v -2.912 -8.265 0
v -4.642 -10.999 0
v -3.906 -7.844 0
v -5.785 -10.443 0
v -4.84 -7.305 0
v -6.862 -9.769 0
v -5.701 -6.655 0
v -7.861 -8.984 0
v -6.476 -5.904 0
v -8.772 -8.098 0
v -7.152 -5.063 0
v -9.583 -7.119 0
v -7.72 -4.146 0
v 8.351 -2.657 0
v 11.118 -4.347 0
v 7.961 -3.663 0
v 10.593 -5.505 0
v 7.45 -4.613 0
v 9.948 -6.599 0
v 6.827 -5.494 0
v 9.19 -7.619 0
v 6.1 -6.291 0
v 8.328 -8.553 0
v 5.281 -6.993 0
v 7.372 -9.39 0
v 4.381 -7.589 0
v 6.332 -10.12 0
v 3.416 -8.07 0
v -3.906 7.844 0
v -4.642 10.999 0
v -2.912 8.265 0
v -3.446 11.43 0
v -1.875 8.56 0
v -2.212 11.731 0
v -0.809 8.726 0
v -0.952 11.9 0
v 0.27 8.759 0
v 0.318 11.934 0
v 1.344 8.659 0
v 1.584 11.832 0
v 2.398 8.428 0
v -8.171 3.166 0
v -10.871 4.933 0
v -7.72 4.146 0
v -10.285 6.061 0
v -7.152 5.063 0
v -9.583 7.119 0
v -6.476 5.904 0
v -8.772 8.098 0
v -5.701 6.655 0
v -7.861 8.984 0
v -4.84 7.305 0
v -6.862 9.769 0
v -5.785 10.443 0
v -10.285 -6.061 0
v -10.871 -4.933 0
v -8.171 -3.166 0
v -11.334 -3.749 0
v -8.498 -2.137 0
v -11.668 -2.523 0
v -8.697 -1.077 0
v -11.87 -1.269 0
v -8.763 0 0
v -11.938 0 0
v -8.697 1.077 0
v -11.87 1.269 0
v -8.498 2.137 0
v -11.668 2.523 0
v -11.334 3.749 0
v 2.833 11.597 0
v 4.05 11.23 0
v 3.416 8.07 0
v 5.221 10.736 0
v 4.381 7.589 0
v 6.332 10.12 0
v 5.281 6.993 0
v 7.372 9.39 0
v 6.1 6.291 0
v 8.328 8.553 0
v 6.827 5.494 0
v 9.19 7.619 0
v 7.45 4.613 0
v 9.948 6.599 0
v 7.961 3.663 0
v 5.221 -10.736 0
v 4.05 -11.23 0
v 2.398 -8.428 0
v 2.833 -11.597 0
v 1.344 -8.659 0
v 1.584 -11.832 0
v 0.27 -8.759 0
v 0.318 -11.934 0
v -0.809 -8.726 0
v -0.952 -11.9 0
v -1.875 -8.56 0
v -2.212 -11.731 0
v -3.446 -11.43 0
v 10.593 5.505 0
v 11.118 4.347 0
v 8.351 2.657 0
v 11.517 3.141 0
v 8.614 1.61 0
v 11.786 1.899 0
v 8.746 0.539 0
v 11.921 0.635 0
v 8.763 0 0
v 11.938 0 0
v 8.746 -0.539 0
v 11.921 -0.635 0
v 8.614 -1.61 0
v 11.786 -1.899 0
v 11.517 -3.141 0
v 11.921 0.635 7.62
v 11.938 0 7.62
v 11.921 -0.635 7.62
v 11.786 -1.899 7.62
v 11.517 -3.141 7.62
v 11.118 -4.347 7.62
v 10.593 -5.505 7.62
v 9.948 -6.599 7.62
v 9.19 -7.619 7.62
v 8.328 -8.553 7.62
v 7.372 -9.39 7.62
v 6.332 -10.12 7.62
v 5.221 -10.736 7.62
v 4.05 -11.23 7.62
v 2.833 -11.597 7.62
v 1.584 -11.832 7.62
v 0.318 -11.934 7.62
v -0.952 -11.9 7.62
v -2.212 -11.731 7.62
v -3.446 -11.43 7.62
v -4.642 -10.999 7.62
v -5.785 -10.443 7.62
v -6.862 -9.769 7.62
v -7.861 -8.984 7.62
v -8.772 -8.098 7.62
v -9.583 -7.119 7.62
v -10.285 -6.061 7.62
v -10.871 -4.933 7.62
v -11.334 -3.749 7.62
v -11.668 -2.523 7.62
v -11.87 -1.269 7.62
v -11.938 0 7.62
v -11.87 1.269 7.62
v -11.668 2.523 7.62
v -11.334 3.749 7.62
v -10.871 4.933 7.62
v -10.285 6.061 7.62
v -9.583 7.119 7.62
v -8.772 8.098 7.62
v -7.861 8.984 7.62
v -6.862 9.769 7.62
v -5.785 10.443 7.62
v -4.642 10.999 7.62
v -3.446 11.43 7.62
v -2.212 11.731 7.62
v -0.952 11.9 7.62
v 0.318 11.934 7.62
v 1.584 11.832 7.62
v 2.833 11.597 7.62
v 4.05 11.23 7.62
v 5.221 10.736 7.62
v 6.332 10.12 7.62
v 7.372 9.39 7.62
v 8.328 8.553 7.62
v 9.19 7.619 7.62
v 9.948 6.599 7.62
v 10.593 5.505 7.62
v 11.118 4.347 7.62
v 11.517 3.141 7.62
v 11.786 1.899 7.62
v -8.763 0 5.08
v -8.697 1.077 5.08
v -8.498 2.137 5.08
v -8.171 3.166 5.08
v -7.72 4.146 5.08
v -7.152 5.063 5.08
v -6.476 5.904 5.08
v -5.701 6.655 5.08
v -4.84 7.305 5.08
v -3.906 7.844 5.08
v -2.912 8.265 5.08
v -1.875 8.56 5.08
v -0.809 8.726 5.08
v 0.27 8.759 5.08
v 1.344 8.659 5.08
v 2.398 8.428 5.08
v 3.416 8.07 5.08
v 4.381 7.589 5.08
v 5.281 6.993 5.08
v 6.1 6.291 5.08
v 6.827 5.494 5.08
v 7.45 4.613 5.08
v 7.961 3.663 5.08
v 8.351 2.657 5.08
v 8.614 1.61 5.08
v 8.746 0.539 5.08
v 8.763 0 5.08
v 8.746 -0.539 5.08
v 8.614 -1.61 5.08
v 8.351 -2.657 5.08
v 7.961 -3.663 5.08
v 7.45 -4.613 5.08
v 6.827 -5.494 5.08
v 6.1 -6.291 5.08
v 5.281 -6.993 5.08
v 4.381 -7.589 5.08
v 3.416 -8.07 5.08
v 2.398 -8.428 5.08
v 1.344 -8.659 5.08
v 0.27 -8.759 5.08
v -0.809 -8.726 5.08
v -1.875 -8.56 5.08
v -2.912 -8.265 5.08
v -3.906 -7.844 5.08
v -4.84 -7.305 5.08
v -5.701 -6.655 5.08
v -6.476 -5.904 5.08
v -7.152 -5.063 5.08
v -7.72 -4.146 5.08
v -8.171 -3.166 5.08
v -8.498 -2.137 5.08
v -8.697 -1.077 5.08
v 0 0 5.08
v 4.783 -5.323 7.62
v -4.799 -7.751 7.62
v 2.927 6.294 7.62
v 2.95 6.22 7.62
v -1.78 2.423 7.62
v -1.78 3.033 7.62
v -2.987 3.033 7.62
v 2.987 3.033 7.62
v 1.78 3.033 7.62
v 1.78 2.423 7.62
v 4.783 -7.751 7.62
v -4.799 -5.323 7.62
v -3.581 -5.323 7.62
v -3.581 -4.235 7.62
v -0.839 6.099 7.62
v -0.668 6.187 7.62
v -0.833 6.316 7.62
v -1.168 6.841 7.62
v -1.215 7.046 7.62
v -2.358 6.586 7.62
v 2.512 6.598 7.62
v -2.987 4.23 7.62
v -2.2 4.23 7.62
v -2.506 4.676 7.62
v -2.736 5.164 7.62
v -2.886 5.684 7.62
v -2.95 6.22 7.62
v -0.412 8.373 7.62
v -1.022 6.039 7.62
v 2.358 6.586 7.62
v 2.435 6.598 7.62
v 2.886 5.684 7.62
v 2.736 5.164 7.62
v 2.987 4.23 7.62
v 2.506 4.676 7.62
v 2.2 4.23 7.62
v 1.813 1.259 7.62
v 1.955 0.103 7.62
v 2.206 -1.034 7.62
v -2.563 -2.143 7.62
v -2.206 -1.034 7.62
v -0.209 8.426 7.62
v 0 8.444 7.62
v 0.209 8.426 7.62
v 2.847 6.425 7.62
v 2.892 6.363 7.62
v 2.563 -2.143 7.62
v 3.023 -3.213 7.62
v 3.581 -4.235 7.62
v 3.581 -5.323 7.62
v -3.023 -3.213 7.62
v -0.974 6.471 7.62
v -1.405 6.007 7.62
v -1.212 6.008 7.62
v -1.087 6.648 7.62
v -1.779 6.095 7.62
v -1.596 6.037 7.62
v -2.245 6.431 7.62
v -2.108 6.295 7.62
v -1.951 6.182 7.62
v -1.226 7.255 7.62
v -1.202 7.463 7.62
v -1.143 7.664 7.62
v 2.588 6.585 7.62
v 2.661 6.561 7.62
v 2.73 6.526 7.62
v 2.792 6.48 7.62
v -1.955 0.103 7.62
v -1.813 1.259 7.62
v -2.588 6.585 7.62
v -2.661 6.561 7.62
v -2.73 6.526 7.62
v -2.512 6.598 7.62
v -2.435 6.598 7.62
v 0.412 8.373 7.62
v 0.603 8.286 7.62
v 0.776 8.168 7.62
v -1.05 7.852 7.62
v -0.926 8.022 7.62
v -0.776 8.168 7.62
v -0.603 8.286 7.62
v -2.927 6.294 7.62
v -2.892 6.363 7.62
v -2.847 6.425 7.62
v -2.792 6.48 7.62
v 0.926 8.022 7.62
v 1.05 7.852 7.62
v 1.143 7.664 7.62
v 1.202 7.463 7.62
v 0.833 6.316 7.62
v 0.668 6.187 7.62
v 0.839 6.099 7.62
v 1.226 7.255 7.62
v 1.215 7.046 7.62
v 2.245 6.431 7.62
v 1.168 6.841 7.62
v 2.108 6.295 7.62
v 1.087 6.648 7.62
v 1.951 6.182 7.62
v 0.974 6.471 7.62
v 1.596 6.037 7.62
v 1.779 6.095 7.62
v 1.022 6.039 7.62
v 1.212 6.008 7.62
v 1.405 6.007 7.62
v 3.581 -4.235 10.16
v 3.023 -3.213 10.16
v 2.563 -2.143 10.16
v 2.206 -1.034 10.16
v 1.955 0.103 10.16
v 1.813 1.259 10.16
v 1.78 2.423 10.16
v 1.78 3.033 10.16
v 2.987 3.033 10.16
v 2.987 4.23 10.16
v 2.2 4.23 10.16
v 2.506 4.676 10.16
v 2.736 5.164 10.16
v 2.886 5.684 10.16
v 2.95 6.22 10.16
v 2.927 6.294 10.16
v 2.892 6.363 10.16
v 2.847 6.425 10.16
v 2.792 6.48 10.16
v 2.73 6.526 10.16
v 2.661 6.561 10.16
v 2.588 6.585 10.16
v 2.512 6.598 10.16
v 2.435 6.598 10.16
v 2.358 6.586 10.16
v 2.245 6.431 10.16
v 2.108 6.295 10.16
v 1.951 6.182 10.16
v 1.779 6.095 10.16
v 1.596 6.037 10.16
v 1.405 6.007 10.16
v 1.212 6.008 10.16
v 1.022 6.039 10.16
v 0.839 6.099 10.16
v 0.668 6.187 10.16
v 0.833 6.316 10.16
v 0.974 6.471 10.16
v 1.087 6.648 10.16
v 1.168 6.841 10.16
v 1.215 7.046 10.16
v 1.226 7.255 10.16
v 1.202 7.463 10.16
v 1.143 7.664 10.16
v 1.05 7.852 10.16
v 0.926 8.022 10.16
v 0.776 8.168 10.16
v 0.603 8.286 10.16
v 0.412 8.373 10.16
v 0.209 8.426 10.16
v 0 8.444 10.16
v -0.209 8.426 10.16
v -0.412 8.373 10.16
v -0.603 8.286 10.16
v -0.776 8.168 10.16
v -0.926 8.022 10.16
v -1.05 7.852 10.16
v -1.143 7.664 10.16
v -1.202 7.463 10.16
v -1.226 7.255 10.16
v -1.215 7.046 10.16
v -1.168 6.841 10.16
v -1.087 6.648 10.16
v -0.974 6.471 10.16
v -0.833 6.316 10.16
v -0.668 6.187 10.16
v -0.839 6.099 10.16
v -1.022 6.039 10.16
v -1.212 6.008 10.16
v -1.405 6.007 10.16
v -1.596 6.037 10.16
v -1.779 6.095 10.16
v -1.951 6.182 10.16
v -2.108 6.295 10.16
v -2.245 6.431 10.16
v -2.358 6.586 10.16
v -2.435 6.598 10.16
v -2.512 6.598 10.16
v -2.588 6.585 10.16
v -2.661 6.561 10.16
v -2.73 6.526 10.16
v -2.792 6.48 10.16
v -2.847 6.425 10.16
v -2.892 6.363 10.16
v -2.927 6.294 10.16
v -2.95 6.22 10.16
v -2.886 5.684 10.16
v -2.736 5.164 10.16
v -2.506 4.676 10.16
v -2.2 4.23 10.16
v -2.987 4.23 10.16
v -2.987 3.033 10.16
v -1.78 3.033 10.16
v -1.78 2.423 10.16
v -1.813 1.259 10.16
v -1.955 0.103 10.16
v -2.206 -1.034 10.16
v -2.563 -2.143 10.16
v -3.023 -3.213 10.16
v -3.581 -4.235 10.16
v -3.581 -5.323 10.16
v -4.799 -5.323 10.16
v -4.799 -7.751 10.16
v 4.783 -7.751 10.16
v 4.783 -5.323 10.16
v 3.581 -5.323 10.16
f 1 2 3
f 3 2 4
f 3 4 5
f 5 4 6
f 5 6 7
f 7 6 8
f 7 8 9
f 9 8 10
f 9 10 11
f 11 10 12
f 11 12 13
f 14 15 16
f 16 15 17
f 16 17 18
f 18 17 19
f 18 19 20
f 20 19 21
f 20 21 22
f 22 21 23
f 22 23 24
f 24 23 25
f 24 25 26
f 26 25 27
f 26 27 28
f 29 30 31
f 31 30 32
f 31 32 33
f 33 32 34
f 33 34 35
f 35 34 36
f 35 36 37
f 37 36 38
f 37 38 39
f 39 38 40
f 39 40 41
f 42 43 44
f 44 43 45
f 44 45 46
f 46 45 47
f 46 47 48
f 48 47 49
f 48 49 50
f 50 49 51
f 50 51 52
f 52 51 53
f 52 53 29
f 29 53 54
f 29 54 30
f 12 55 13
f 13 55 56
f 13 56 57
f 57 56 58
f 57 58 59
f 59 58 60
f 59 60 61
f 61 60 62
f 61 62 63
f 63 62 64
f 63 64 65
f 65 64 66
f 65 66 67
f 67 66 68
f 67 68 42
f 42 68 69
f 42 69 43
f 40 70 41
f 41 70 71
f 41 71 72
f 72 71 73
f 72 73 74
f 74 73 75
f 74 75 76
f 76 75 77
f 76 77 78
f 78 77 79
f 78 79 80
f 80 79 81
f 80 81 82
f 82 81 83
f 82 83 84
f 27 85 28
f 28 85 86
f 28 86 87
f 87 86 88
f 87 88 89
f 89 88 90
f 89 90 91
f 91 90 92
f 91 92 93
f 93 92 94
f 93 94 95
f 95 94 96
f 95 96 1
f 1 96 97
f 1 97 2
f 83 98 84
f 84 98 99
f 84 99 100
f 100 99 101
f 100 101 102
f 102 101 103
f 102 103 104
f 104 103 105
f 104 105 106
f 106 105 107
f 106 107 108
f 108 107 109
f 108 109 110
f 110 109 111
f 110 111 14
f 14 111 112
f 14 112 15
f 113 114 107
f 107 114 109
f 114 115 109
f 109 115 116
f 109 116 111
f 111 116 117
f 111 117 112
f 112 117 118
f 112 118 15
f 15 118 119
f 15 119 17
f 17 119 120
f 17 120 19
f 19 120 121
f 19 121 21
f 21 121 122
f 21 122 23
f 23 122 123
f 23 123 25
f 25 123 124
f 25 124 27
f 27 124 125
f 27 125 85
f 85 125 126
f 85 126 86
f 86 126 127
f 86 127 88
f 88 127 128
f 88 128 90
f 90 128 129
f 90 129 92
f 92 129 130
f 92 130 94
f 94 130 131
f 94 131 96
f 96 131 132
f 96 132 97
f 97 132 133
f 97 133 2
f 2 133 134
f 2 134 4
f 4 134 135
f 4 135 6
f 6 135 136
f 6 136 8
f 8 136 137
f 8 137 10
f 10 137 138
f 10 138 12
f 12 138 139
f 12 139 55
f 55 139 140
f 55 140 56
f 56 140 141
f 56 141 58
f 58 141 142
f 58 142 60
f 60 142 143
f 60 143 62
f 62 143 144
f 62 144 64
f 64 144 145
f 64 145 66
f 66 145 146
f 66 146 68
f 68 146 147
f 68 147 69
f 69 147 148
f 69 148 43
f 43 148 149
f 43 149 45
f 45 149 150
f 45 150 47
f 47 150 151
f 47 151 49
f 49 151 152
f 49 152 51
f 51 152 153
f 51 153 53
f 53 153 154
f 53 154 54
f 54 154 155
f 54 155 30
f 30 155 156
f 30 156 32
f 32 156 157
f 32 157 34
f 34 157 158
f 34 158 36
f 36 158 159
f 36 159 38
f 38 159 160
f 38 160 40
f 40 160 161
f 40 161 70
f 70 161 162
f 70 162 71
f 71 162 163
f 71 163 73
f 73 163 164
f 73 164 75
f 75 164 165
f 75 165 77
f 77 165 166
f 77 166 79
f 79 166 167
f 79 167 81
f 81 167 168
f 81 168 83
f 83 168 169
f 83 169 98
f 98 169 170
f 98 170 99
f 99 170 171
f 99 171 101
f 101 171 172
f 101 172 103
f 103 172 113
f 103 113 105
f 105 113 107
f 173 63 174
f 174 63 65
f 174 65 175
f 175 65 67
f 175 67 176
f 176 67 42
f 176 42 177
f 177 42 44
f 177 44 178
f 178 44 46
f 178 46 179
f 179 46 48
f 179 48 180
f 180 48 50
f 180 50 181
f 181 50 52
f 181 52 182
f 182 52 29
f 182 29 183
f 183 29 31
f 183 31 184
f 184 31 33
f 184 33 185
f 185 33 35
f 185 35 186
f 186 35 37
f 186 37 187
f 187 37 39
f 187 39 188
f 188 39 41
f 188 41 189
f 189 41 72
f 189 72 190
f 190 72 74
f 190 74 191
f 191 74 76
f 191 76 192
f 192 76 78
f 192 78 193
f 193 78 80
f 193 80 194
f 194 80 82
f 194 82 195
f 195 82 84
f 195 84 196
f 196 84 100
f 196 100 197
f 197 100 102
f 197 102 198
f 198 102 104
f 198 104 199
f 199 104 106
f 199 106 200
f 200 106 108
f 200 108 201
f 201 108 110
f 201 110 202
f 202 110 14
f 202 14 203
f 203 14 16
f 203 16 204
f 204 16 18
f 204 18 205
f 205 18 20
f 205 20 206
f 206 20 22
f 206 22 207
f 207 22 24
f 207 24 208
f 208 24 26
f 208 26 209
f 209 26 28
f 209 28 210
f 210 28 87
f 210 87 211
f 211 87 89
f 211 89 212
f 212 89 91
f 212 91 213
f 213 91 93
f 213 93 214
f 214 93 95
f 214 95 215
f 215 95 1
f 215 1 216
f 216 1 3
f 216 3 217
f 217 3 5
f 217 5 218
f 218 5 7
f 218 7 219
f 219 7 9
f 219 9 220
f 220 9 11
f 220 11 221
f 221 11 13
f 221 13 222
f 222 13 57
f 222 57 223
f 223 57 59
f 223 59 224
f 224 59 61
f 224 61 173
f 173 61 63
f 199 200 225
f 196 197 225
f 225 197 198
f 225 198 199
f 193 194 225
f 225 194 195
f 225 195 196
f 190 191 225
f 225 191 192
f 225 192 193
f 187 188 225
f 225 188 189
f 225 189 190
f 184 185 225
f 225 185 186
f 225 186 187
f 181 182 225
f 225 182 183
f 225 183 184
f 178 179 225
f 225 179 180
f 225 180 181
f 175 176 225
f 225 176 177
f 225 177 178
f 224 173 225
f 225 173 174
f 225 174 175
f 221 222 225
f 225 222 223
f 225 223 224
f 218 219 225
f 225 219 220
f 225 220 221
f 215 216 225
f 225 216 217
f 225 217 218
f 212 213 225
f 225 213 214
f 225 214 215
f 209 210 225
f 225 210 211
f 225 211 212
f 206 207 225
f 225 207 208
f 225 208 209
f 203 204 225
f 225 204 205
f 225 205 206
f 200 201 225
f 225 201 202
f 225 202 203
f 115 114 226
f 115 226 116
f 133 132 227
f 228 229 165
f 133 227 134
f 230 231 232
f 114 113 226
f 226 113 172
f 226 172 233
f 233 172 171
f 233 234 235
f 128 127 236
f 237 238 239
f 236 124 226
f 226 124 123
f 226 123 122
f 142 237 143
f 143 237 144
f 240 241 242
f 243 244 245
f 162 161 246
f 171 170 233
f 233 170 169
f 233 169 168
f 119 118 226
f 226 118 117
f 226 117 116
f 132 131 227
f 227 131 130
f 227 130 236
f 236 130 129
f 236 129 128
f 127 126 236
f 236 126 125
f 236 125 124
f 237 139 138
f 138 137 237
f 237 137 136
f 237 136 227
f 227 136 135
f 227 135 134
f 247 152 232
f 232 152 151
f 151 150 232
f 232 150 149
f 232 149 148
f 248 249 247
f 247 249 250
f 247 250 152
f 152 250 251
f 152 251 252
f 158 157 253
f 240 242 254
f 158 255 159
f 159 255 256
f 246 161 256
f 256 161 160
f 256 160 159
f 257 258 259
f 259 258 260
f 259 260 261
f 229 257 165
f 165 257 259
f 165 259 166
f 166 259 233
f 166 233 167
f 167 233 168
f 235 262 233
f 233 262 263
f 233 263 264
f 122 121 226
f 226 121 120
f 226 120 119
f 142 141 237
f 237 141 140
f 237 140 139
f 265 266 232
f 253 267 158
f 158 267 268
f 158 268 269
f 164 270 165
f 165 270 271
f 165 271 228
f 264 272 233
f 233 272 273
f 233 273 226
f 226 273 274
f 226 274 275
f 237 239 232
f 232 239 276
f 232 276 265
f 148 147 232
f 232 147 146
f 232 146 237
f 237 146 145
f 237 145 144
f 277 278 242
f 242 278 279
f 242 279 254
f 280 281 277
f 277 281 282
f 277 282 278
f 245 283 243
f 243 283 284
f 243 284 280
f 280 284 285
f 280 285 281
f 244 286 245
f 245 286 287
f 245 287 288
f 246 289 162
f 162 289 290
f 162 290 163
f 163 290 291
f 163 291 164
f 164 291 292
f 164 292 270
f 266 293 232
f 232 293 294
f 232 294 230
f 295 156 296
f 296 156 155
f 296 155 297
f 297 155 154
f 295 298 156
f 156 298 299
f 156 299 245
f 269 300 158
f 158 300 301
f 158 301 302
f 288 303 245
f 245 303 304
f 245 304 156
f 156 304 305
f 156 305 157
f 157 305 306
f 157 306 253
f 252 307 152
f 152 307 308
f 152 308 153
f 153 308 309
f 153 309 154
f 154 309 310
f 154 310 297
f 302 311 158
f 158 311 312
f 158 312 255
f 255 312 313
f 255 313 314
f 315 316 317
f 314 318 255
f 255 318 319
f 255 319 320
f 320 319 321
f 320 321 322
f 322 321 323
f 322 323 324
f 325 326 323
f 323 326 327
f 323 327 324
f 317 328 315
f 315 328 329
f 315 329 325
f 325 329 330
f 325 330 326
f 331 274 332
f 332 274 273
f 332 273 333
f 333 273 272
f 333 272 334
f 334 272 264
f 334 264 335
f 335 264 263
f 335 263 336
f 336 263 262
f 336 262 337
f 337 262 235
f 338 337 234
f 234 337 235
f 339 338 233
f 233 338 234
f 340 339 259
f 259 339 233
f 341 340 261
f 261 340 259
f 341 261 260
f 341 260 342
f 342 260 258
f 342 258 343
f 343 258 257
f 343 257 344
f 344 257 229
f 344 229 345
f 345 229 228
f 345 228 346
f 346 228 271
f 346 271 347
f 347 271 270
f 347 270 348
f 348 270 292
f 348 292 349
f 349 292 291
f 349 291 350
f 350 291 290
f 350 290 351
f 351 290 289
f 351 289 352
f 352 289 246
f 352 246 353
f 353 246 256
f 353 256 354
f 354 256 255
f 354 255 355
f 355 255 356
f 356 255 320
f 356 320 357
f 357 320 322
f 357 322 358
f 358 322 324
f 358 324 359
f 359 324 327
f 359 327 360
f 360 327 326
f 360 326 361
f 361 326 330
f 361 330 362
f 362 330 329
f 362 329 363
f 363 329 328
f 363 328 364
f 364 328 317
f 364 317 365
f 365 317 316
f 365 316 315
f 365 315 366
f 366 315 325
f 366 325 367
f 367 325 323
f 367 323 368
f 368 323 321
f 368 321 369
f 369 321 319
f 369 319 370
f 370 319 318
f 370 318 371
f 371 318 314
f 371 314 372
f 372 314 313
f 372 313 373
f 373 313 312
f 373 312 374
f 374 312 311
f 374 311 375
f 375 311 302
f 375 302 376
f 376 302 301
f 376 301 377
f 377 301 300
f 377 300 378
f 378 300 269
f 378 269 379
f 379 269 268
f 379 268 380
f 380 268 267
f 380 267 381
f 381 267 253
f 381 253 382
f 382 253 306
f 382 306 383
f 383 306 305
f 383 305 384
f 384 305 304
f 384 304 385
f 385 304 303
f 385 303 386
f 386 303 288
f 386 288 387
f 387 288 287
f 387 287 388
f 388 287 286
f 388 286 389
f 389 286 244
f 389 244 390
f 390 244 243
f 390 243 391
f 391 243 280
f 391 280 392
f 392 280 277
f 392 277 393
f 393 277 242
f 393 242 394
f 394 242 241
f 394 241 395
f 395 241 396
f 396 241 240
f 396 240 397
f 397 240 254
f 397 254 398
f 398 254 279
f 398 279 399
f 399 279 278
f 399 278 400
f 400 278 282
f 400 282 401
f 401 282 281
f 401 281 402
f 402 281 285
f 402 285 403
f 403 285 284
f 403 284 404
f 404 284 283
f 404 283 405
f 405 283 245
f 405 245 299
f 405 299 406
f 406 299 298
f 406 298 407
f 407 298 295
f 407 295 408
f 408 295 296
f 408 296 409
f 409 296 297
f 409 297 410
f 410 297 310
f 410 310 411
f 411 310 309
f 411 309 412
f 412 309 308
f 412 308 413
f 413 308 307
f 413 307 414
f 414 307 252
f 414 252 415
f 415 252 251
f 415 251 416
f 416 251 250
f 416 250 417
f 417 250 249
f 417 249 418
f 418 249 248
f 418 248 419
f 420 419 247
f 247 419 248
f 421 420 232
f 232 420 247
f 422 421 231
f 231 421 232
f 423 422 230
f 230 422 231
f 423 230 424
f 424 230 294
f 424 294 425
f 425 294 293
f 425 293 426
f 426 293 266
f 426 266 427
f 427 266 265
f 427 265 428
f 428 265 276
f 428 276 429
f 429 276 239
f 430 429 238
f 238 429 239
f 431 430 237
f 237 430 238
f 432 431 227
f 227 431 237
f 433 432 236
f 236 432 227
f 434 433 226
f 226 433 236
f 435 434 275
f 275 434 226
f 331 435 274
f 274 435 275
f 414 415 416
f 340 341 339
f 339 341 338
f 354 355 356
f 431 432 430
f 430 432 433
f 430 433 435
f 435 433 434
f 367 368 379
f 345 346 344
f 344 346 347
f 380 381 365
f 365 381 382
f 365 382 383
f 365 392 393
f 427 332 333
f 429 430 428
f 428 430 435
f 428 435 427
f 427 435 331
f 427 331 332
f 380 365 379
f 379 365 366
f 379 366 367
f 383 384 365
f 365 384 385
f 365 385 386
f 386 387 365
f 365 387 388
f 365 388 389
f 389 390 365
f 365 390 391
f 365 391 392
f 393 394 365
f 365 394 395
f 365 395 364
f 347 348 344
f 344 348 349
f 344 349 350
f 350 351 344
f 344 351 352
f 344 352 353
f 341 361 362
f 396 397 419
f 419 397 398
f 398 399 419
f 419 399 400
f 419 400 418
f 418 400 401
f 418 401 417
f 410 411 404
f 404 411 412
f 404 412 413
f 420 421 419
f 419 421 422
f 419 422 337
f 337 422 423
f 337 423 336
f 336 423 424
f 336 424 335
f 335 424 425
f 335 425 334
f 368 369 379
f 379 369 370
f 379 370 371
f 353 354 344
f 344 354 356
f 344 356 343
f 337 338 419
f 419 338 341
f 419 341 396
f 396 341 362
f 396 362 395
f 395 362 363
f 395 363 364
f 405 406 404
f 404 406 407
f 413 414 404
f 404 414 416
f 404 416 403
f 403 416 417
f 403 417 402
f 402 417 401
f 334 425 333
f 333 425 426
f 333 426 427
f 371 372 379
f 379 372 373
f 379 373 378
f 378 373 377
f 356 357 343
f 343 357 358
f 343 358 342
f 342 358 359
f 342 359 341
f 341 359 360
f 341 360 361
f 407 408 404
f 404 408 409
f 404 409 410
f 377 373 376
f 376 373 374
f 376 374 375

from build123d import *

# Parameters (mm, degrees)
SKETCH1_R           = 11.938
SKETCH1_R_2         = 8.763
BOSS_EXTRUDE1_DEPTH = 5.08
SKETCH2_R           = 11.938
BOSS_EXTRUDE2_DEPTH = 2.54
BOSS_EXTRUDE7_DEPTH = 2.54


with BuildPart() as part:
    # Sketch1 → Boss-Extrude1 (new body)
    with BuildSketch(Plane.XY):
        Circle(SKETCH1_R)
        Circle(SKETCH1_R_2, mode=Mode.SUBTRACT)
    extrude(amount=BOSS_EXTRUDE1_DEPTH)

    # Sketch2 → Boss-Extrude2 (add)
    with BuildSketch(Plane.XY.offset(5.08)):
        Circle(SKETCH2_R)
    extrude(amount=BOSS_EXTRUDE2_DEPTH)

    # Sketch3 → Boss-Extrude7 (add)
    with BuildSketch(Plane.XY.offset(7.62)):
        with BuildLine():
            Line((-3.581203205, -5.323066216), (-3.581203205, -4.234628776))
            ThreePointArc((-3.581203205, -4.234628776), (-2.206146934, -1.034066779), (-1.780332767, 2.423252867))
            Line((-1.780332767, 2.423252867), (-1.780332767, 3.033045049))
            Line((-1.780332767, 3.033045049), (-2.98662319, 3.033045049))
            Line((-2.98662319, 3.033045049), (-2.98662319, 4.229885576))
            Line((-2.98662319, 4.229885576), (-2.200089182, 4.229885576))
            ThreePointArc((-2.200089182, 4.229885576), (-2.736363422, 5.164361527), (-2.950097006, 6.220369728))
            ThreePointArc((-2.950097006, 6.220369728), (-2.730043081, 6.525801031), (-2.358468914, 6.586171955))
            ThreePointArc((-2.358468914, 6.586171955), (-1.595642249, 6.036578644), (-0.667621184, 6.187357394))
            ThreePointArc((-0.667621184, 6.187357394), (0, 8.443971822), (0.667621184, 6.187357394))
            ThreePointArc((0.667621184, 6.187357394), (1.595642249, 6.036578644), (2.358468914, 6.586171955))
            ThreePointArc((2.358468914, 6.586171955), (2.730043081, 6.525801031), (2.950097006, 6.220369728))
            ThreePointArc((2.950097006, 6.220369728), (2.736363422, 5.164361527), (2.200089182, 4.229885576))
            Line((2.200089182, 4.229885576), (2.98662319, 4.229885576))
            Line((2.98662319, 4.229885576), (2.98662319, 3.033045049))
            Line((2.98662319, 3.033045049), (1.780332767, 3.033045049))
            Line((1.780332767, 3.033045049), (1.780332767, 2.423252867))
            ThreePointArc((1.780332767, 2.423252867), (2.206146934, -1.034066779), (3.581203205, -4.234628776))
            Line((3.581203205, -4.234628776), (3.581203205, -5.323066216))
            Line((3.581203205, -5.323066216), (4.782890844, -5.323066216))
            Line((4.782890844, -5.323066216), (4.782890844, -7.750587613))
            Line((4.782890844, -7.750587613), (-4.798911093, -7.750587613))
            Line((-4.798911093, -7.750587613), (-4.798911093, -5.323066216))
            Line((-4.798911093, -5.323066216), (-3.581203205, -5.323066216))
        make_face()
    extrude(amount=BOSS_EXTRUDE7_DEPTH)


solid = part.part
